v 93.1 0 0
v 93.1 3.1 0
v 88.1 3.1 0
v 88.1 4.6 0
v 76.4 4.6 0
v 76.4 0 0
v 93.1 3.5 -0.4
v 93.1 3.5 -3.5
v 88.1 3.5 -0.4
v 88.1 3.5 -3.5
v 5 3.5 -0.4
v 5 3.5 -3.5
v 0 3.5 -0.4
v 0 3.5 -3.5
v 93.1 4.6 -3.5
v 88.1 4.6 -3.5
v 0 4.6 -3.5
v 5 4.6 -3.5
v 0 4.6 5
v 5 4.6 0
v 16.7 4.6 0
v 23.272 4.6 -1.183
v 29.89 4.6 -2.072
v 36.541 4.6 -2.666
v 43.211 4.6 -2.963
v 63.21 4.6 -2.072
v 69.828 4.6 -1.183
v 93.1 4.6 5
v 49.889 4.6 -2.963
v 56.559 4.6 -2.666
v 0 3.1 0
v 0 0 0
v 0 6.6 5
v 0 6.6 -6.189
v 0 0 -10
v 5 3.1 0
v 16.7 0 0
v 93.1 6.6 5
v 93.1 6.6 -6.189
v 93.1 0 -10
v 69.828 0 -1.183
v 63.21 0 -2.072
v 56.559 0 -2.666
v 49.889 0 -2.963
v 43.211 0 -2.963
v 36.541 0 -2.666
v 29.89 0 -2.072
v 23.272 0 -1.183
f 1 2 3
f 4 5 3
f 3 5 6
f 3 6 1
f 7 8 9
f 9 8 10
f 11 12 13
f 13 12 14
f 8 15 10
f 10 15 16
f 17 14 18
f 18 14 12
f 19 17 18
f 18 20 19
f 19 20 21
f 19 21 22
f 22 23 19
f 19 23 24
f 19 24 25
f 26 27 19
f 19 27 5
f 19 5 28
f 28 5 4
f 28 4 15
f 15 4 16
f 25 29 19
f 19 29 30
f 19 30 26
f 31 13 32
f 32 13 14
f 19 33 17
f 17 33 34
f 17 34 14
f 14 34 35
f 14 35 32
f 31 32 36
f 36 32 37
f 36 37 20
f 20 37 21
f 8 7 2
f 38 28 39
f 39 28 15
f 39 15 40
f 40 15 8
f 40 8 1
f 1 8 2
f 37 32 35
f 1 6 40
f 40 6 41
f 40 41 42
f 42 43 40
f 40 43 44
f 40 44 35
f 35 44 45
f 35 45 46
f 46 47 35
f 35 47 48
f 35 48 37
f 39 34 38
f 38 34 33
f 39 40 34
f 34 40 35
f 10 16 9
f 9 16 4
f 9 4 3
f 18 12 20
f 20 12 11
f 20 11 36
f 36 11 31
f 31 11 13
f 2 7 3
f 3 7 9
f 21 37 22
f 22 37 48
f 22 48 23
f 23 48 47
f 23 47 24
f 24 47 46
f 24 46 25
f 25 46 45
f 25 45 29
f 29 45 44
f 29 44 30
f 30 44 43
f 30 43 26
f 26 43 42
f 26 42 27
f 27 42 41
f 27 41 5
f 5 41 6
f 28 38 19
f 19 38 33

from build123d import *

# Parameters (mm, degrees)
SKETCH_2_W                  = 93.1
SKETCH_2_H                  = 10
EXTRUDE_1_DEPTH             = 3.5
SKETCH_4_W                  = 93.1
SKETCH_4_H                  = 6.5
EXTRUDE_2_DEPTH             = 1.1
SKETCH_5_W                  = 93.1
SKETCH_5_H                  = 10
EXTRUDE_3_DEPTH             = 2
CUT_EXTRUDE_1_DEPTH         = 94.867832616
SKETCH_7_W                  = 83.1
SKETCH_7_H                  = 1.1
EXTRUDE_4_DEPTH             = 3.5
CHAMFER_1_SIZE              = 0.4
CUT_EXTRUDE_2_REACH         = 95.868
SKETCH_8_R                  = 150
SKETCH_9_W                  = 93.1
SKETCH_9_H                  = 2
EXTRUDE_5_DEPTH             = 5
EXTRUDE_5_DIRECTION_2_REACH = 95.868


with BuildPart() as part:
    # 草图2 → 凸台-拉伸1 (new body)
    with BuildSketch(Plane(origin=(0, 0, 0), x_dir=(1, 0, 0), z_dir=(0, 1, 0))):
        with Locations((46.55, 5)):
            Rectangle(SKETCH_2_W, SKETCH_2_H)
    extrude(amount=EXTRUDE_1_DEPTH)

    # 草图4 → 凸台-拉伸2 (add)
    with BuildSketch(Plane(origin=(0, 3.5, 0), x_dir=(1, 0, 0), z_dir=(0, 1, 0))):
        with Locations((46.55, 6.75)):
            Rectangle(SKETCH_4_W, SKETCH_4_H)
    extrude(amount=EXTRUDE_2_DEPTH)

    # 草图5 → 凸台-拉伸3 (add)
    with BuildSketch(Plane(origin=(0, 4.6, 0), x_dir=(1, 0, 0), z_dir=(0, 1, 0))):
        with Locations((46.55, 5)):
            Rectangle(SKETCH_5_W, SKETCH_5_H)
    extrude(amount=EXTRUDE_3_DEPTH)

    # 草图6 → 切除-拉伸1 (cut, through all)
    with BuildSketch(Plane.ZY):
        Polygon((-10, 0), (-6.189488223, 6.6), (-10, 6.6), align=None)
    extrude(amount=-CUT_EXTRUDE_1_DEPTH, mode=Mode.SUBTRACT)

    # 草图7 → 凸台-拉伸4 (add)
    with BuildSketch(Plane.XY.offset(-3.5)):
        with Locations((46.55, 4.05)):
            Rectangle(SKETCH_7_W, SKETCH_7_H)
    extrude(amount=EXTRUDE_4_DEPTH)

    # 倒角1
    chamfer_1_edges = [part.edges().sort_by_distance(p)[0] for p in [
        (90.6, 3.5, 0),
        (2.5, 3.5, 0),
    ]]
    chamfer(chamfer_1_edges, length=CHAMFER_1_SIZE)

    # 草图8 → 切除-拉伸2 (cut, up to next)
    with BuildSketch(Plane.XZ, mode=Mode.PRIVATE) as cut_extrude_2_sk1:
        with Locations((46.55, 147)):
            Circle(SKETCH_8_R)
    cut_extrude_2_tool1 = extrude(cut_extrude_2_sk1.sketch, amount=-CUT_EXTRUDE_2_REACH, mode=Mode.PRIVATE) & part.part
    add(cut_extrude_2_tool1.solids().sort_by_distance((46.55, 0, 147))[0], mode=Mode.SUBTRACT)

    # 草图9 → 凸台-拉伸5 (add)
    with BuildSketch(Plane.XY):
        with Locations((46.55, 5.6)):
            Rectangle(SKETCH_9_W, SKETCH_9_H)
    extrude(amount=EXTRUDE_5_DEPTH)

    # 草图9 → 凸台-拉伸5 direction 2 (add, up to next)
    with BuildSketch(Plane.XY, mode=Mode.PRIVATE) as extrude_5_direction_2_sk1:
        with Locations((46.55, 5.6)):
            Rectangle(SKETCH_9_W, SKETCH_9_H)
    extrude_5_direction_2_tool1 = extrude(extrude_5_direction_2_sk1.sketch, amount=-EXTRUDE_5_DIRECTION_2_REACH, mode=Mode.PRIVATE) - part.part
    add(extrude_5_direction_2_tool1.solids().sort_by_distance((46.55, 5.6, 0))[0])


solid = part.part
